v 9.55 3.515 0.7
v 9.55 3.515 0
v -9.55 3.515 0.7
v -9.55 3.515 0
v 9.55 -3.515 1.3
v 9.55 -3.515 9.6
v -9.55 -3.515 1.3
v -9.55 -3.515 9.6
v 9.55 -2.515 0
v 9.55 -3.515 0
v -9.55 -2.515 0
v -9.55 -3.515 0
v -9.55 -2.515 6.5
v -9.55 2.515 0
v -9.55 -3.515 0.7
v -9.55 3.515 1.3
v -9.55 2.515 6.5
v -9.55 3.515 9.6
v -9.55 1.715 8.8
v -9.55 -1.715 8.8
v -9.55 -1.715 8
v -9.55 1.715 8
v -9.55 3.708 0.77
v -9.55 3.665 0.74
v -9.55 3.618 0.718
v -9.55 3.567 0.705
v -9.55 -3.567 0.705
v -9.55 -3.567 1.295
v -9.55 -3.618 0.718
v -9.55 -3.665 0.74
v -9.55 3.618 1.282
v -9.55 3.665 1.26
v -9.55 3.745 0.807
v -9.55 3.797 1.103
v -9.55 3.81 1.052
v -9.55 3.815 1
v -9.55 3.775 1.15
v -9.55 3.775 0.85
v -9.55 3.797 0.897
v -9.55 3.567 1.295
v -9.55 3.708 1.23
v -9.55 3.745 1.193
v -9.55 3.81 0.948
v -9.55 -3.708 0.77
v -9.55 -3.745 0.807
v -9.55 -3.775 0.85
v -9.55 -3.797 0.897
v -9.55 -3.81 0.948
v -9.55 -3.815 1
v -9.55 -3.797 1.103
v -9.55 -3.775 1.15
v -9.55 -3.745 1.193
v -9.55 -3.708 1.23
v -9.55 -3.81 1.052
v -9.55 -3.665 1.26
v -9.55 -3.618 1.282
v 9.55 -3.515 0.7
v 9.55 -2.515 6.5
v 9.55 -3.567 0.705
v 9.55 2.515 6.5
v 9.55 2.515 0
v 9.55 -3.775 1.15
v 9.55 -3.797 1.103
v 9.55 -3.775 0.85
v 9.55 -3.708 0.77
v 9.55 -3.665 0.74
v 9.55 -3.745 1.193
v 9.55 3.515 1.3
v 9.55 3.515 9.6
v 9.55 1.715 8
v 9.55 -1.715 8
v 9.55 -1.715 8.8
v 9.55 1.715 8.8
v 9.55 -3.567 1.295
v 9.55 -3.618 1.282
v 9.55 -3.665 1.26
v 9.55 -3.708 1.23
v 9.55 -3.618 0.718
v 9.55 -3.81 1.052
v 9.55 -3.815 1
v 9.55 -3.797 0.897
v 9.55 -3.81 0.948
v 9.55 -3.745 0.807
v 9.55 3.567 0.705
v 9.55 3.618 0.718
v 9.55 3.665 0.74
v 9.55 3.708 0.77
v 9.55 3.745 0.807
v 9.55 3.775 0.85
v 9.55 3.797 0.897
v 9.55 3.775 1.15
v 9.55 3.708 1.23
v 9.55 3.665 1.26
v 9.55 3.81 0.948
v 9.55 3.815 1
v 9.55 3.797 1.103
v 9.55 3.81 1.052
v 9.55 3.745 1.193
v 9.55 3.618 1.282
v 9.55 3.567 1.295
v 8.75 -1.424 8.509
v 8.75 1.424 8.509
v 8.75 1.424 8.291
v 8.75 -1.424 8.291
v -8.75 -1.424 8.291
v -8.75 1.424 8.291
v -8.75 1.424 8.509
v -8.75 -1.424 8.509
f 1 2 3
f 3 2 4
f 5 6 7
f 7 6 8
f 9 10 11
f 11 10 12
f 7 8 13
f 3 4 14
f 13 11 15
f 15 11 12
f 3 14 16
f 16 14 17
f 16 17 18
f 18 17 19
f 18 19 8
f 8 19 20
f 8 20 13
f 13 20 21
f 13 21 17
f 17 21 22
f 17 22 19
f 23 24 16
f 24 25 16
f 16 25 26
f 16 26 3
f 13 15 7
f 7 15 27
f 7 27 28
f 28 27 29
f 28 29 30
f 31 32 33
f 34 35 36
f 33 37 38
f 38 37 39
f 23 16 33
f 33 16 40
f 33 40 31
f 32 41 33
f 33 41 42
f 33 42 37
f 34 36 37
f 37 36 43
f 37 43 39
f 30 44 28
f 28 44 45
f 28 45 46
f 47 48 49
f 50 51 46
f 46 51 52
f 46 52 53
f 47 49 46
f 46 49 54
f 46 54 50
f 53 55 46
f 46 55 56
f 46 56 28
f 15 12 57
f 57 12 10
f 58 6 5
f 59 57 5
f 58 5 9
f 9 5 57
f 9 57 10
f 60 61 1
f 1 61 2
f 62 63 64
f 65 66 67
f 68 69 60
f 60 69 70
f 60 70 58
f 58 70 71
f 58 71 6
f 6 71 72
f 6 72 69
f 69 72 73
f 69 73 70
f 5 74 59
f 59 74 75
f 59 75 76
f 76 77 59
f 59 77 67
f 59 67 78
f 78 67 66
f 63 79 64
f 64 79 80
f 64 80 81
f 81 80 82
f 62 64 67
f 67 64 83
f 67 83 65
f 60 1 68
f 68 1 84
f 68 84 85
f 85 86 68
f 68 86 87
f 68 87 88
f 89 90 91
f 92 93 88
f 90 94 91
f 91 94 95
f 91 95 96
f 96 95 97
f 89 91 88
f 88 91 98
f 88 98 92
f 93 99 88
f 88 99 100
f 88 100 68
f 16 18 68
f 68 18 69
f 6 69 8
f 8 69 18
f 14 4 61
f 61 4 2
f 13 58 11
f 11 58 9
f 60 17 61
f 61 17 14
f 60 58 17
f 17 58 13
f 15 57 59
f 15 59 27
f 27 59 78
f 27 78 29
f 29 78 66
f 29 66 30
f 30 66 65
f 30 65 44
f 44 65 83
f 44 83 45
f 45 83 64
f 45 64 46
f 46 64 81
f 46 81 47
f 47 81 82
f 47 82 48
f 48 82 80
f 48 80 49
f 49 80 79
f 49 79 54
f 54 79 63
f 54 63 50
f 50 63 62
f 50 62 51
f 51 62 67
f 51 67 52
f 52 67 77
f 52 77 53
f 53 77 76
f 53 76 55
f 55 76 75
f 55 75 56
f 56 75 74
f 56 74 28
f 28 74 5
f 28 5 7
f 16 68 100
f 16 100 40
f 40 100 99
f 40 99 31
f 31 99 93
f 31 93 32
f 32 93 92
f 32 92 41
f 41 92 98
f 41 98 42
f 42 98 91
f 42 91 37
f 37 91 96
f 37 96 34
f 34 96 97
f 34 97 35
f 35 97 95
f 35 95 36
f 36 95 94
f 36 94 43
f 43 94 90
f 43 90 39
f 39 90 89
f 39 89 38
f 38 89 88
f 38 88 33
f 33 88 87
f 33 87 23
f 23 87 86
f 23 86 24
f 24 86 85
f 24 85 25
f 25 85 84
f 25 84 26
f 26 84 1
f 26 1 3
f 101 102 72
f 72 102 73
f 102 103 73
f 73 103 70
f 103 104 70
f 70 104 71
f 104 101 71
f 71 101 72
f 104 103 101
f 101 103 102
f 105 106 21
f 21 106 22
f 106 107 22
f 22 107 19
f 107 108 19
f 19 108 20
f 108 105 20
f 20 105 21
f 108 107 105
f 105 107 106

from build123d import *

# Parameters (mm, degrees)
SKETCH_3_W          = 19.1
SKETCH_3_H          = 7.03
EXTRUDE_2_DEPTH     = 9.6
SKETCH_7_W          = 19.1
SKETCH_7_H          = 5.03
CUT_EXTRUDE_2_DEPTH = 6.5
SKETCH_8_R          = 0.3
EXTRUDE_4_DEPTH     = 19.1
SKETCH_11_W         = 0.8
SKETCH_11_H         = 3.43
CUT_EXTRUDE_4_DEPTH = 0.8
CUT_EXTRUDE_4_DRAFT = -20
SKETCH_12_W         = 0.8
SKETCH_12_H         = 3.43
CUT_EXTRUDE_5_DEPTH = 0.8
CUT_EXTRUDE_5_DRAFT = -20


with BuildPart() as part:
    # Эскиз3 → Бобышка-Вытянуть2 (new body)
    with BuildSketch(Plane.XY):
        Rectangle(SKETCH_3_W, SKETCH_3_H)
    extrude(amount=EXTRUDE_2_DEPTH)

    # Эскиз7 → Вырез-Вытянуть2 (cut)
    with BuildSketch(Plane(origin=(0, 0, 0), x_dir=(-1, 0, 0), z_dir=(0, 0, -1))):
        Rectangle(SKETCH_7_W, SKETCH_7_H)
    extrude(amount=-CUT_EXTRUDE_2_DEPTH, mode=Mode.SUBTRACT)

    # Эскиз8 → Бобышка-Вытянуть4 (add)
    with BuildSketch(Plane(origin=(9.55, 0, 0), x_dir=(0, 0, -1), z_dir=(1, 0, 0))):
        with Locations((-1, -3.515)):
            Circle(SKETCH_8_R)
        with Locations((-1, 3.515)):
            Circle(SKETCH_8_R)
    extrude(amount=-EXTRUDE_4_DEPTH)


with BuildPart() as cut_extrude_4_tool:
    # Эскиз11 → Вырез-Вытянуть4 (with draft: the straight prism first)
    with BuildSketch(Plane(origin=(9.55, 0, 0), x_dir=(0, 0, -1), z_dir=(1, 0, 0))):
        with Locations((-8.4, 0)):
            Rectangle(SKETCH_11_W, SKETCH_11_H)
    extrude(amount=-CUT_EXTRUDE_4_DEPTH)
    # Вырез-Вытянуть4: the draft: its side faces are tilted about the plane it starts from
    cut_extrude_4_sides = [cut_extrude_4_tool.faces().sort_by_distance(p)[0] for p in [
        (9.15, 0, 8.8),
        (9.15, -1.715, 8.4),
        (9.15, 0, 8),
        (9.15, 1.715, 8.4),
    ]]
    draft(cut_extrude_4_sides, Plane(origin=(9.55, 0, 0), x_dir=(0, 0, -1), z_dir=(1, 0, 0)), CUT_EXTRUDE_4_DRAFT)


with BuildPart() as part_1:
    add(part.part)

    # Вырез-Вытянуть4: cut by cut_extrude_4_tool
    add(cut_extrude_4_tool.part, mode=Mode.SUBTRACT)


with BuildPart() as cut_extrude_5_tool:
    # Эскиз12 → Вырез-Вытянуть5 (with draft: the straight prism first)
    with BuildSketch(Plane.ZY.offset(9.55)):
        with Locations((8.4, 0)):
            Rectangle(SKETCH_12_W, SKETCH_12_H)
    extrude(amount=-CUT_EXTRUDE_5_DEPTH)
    # Вырез-Вытянуть5: the draft: its side faces are tilted about the plane it starts from
    cut_extrude_5_sides = [cut_extrude_5_tool.faces().sort_by_distance(p)[0] for p in [
        (-9.15, 0, 8),
        (-9.15, -1.715, 8.4),
        (-9.15, 0, 8.8),
        (-9.15, 1.715, 8.4),
    ]]
    draft(cut_extrude_5_sides, Plane.ZY.offset(9.55), CUT_EXTRUDE_5_DRAFT)


with BuildPart() as part_2:
    add(part_1.part)

    # Вырез-Вытянуть5: cut by cut_extrude_5_tool
    add(cut_extrude_5_tool.part, mode=Mode.SUBTRACT)


solid = part_2.part
